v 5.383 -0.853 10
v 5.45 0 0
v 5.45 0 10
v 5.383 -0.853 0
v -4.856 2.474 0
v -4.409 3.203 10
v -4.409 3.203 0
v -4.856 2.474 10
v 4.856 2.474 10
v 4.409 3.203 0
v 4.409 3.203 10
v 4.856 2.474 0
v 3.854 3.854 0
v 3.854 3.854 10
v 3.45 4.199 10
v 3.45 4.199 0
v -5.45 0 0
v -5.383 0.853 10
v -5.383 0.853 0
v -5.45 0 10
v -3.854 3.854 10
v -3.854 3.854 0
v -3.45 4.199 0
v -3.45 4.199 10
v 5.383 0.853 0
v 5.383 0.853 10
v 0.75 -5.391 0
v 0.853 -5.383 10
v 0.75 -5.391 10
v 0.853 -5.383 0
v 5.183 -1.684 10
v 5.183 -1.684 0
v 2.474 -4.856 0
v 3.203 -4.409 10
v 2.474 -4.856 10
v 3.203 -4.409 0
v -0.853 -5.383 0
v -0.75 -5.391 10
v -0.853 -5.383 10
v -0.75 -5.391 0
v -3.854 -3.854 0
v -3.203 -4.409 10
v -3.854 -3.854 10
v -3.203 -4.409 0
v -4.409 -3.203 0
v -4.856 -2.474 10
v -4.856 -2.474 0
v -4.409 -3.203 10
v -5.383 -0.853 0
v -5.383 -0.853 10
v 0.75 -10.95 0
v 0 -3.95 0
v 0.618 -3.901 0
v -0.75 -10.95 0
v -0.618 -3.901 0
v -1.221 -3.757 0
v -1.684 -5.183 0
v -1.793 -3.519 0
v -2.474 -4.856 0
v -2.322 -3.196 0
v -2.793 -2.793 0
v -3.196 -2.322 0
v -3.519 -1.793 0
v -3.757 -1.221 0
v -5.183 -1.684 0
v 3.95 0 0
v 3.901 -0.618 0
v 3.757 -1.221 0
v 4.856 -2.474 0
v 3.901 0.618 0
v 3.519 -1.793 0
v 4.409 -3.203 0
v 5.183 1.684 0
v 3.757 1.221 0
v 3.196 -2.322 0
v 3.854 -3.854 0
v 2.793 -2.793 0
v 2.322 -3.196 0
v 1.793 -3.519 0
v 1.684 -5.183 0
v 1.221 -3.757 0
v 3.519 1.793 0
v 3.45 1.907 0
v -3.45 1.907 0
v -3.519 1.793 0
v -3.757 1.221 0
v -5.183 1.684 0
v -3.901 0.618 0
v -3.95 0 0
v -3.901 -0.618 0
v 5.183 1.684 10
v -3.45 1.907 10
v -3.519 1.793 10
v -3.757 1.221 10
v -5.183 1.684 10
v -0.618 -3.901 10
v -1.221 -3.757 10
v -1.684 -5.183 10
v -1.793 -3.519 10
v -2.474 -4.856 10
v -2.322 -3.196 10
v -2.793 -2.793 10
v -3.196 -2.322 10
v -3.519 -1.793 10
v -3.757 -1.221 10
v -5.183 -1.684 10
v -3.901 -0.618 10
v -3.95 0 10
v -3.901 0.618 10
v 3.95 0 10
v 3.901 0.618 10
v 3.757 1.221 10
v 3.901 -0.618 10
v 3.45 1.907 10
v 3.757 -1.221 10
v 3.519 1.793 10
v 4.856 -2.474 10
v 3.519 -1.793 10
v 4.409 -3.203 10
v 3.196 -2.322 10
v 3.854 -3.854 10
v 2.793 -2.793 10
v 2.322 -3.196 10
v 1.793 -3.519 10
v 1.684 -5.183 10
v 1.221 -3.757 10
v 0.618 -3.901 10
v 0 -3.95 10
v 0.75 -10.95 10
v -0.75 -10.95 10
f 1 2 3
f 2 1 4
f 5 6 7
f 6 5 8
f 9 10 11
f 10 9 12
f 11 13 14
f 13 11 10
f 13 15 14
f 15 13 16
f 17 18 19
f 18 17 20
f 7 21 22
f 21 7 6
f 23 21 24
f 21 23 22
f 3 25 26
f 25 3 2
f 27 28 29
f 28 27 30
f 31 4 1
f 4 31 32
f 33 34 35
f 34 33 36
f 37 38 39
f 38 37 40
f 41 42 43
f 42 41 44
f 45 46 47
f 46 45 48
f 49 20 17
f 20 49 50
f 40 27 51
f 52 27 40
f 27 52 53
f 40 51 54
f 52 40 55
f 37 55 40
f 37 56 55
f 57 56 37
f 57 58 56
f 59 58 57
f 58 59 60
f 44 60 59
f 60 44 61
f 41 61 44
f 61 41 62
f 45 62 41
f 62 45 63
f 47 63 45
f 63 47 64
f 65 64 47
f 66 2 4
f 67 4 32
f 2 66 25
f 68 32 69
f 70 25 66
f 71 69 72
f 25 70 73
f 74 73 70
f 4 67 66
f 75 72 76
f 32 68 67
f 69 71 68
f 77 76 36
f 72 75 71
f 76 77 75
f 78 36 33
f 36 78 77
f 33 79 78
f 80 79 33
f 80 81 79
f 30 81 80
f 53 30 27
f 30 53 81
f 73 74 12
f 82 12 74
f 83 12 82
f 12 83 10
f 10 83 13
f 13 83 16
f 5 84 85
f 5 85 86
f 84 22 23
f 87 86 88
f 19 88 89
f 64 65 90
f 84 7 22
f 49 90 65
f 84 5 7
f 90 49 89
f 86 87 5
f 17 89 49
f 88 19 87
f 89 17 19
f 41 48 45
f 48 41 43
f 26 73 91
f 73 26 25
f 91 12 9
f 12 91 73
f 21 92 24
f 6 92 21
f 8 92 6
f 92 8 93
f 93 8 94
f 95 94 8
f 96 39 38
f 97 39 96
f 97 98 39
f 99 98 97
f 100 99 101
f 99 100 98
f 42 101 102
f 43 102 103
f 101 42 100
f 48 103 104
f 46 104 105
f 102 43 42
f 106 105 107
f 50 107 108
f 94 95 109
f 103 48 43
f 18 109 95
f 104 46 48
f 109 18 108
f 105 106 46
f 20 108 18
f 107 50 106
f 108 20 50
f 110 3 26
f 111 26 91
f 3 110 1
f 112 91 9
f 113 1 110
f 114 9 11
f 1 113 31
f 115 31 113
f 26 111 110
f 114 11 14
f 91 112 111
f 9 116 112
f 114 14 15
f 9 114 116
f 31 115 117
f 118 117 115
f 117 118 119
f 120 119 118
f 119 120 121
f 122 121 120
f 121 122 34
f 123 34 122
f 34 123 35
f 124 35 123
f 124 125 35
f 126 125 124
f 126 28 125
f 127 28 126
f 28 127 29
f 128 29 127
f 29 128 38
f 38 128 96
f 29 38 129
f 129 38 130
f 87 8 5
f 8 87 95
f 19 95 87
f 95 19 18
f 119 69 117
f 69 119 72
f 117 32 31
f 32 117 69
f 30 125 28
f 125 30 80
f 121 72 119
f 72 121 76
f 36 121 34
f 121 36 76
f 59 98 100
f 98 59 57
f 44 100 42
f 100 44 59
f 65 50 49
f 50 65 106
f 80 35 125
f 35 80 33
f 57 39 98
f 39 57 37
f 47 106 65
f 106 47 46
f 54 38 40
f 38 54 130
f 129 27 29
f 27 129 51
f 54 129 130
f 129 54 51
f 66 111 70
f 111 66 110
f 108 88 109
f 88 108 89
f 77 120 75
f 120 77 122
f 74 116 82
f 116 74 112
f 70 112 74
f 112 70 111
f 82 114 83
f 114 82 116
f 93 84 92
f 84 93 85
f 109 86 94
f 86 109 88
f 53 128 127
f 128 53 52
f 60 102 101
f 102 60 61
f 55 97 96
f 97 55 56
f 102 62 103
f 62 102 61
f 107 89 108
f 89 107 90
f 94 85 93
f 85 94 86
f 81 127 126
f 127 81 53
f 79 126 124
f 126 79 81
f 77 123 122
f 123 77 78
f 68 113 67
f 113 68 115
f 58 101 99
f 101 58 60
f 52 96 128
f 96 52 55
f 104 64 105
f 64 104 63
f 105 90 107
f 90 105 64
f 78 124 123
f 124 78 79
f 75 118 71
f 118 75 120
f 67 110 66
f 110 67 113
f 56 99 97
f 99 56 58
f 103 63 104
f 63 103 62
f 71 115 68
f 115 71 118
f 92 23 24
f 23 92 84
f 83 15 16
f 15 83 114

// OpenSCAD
module rod_position_marker() {
    wall = 1.5;
    rod_d = 7.9;
    outer_d = rod_d + 2*wall;
    h = 10;

    difference() {
        union() {
            cylinder(d=outer_d, h=h, $fn=40);
            translate([-wall/2,-7-rod_d/2,0]) cube([wall,7,h]);
        }
        cylinder(d=rod_d, h=h, $fn=40);
        translate([-(rod_d-1)/2,0,0]) cube([rod_d-1,10,h]);
    }
    
}

rod_position_marker();
